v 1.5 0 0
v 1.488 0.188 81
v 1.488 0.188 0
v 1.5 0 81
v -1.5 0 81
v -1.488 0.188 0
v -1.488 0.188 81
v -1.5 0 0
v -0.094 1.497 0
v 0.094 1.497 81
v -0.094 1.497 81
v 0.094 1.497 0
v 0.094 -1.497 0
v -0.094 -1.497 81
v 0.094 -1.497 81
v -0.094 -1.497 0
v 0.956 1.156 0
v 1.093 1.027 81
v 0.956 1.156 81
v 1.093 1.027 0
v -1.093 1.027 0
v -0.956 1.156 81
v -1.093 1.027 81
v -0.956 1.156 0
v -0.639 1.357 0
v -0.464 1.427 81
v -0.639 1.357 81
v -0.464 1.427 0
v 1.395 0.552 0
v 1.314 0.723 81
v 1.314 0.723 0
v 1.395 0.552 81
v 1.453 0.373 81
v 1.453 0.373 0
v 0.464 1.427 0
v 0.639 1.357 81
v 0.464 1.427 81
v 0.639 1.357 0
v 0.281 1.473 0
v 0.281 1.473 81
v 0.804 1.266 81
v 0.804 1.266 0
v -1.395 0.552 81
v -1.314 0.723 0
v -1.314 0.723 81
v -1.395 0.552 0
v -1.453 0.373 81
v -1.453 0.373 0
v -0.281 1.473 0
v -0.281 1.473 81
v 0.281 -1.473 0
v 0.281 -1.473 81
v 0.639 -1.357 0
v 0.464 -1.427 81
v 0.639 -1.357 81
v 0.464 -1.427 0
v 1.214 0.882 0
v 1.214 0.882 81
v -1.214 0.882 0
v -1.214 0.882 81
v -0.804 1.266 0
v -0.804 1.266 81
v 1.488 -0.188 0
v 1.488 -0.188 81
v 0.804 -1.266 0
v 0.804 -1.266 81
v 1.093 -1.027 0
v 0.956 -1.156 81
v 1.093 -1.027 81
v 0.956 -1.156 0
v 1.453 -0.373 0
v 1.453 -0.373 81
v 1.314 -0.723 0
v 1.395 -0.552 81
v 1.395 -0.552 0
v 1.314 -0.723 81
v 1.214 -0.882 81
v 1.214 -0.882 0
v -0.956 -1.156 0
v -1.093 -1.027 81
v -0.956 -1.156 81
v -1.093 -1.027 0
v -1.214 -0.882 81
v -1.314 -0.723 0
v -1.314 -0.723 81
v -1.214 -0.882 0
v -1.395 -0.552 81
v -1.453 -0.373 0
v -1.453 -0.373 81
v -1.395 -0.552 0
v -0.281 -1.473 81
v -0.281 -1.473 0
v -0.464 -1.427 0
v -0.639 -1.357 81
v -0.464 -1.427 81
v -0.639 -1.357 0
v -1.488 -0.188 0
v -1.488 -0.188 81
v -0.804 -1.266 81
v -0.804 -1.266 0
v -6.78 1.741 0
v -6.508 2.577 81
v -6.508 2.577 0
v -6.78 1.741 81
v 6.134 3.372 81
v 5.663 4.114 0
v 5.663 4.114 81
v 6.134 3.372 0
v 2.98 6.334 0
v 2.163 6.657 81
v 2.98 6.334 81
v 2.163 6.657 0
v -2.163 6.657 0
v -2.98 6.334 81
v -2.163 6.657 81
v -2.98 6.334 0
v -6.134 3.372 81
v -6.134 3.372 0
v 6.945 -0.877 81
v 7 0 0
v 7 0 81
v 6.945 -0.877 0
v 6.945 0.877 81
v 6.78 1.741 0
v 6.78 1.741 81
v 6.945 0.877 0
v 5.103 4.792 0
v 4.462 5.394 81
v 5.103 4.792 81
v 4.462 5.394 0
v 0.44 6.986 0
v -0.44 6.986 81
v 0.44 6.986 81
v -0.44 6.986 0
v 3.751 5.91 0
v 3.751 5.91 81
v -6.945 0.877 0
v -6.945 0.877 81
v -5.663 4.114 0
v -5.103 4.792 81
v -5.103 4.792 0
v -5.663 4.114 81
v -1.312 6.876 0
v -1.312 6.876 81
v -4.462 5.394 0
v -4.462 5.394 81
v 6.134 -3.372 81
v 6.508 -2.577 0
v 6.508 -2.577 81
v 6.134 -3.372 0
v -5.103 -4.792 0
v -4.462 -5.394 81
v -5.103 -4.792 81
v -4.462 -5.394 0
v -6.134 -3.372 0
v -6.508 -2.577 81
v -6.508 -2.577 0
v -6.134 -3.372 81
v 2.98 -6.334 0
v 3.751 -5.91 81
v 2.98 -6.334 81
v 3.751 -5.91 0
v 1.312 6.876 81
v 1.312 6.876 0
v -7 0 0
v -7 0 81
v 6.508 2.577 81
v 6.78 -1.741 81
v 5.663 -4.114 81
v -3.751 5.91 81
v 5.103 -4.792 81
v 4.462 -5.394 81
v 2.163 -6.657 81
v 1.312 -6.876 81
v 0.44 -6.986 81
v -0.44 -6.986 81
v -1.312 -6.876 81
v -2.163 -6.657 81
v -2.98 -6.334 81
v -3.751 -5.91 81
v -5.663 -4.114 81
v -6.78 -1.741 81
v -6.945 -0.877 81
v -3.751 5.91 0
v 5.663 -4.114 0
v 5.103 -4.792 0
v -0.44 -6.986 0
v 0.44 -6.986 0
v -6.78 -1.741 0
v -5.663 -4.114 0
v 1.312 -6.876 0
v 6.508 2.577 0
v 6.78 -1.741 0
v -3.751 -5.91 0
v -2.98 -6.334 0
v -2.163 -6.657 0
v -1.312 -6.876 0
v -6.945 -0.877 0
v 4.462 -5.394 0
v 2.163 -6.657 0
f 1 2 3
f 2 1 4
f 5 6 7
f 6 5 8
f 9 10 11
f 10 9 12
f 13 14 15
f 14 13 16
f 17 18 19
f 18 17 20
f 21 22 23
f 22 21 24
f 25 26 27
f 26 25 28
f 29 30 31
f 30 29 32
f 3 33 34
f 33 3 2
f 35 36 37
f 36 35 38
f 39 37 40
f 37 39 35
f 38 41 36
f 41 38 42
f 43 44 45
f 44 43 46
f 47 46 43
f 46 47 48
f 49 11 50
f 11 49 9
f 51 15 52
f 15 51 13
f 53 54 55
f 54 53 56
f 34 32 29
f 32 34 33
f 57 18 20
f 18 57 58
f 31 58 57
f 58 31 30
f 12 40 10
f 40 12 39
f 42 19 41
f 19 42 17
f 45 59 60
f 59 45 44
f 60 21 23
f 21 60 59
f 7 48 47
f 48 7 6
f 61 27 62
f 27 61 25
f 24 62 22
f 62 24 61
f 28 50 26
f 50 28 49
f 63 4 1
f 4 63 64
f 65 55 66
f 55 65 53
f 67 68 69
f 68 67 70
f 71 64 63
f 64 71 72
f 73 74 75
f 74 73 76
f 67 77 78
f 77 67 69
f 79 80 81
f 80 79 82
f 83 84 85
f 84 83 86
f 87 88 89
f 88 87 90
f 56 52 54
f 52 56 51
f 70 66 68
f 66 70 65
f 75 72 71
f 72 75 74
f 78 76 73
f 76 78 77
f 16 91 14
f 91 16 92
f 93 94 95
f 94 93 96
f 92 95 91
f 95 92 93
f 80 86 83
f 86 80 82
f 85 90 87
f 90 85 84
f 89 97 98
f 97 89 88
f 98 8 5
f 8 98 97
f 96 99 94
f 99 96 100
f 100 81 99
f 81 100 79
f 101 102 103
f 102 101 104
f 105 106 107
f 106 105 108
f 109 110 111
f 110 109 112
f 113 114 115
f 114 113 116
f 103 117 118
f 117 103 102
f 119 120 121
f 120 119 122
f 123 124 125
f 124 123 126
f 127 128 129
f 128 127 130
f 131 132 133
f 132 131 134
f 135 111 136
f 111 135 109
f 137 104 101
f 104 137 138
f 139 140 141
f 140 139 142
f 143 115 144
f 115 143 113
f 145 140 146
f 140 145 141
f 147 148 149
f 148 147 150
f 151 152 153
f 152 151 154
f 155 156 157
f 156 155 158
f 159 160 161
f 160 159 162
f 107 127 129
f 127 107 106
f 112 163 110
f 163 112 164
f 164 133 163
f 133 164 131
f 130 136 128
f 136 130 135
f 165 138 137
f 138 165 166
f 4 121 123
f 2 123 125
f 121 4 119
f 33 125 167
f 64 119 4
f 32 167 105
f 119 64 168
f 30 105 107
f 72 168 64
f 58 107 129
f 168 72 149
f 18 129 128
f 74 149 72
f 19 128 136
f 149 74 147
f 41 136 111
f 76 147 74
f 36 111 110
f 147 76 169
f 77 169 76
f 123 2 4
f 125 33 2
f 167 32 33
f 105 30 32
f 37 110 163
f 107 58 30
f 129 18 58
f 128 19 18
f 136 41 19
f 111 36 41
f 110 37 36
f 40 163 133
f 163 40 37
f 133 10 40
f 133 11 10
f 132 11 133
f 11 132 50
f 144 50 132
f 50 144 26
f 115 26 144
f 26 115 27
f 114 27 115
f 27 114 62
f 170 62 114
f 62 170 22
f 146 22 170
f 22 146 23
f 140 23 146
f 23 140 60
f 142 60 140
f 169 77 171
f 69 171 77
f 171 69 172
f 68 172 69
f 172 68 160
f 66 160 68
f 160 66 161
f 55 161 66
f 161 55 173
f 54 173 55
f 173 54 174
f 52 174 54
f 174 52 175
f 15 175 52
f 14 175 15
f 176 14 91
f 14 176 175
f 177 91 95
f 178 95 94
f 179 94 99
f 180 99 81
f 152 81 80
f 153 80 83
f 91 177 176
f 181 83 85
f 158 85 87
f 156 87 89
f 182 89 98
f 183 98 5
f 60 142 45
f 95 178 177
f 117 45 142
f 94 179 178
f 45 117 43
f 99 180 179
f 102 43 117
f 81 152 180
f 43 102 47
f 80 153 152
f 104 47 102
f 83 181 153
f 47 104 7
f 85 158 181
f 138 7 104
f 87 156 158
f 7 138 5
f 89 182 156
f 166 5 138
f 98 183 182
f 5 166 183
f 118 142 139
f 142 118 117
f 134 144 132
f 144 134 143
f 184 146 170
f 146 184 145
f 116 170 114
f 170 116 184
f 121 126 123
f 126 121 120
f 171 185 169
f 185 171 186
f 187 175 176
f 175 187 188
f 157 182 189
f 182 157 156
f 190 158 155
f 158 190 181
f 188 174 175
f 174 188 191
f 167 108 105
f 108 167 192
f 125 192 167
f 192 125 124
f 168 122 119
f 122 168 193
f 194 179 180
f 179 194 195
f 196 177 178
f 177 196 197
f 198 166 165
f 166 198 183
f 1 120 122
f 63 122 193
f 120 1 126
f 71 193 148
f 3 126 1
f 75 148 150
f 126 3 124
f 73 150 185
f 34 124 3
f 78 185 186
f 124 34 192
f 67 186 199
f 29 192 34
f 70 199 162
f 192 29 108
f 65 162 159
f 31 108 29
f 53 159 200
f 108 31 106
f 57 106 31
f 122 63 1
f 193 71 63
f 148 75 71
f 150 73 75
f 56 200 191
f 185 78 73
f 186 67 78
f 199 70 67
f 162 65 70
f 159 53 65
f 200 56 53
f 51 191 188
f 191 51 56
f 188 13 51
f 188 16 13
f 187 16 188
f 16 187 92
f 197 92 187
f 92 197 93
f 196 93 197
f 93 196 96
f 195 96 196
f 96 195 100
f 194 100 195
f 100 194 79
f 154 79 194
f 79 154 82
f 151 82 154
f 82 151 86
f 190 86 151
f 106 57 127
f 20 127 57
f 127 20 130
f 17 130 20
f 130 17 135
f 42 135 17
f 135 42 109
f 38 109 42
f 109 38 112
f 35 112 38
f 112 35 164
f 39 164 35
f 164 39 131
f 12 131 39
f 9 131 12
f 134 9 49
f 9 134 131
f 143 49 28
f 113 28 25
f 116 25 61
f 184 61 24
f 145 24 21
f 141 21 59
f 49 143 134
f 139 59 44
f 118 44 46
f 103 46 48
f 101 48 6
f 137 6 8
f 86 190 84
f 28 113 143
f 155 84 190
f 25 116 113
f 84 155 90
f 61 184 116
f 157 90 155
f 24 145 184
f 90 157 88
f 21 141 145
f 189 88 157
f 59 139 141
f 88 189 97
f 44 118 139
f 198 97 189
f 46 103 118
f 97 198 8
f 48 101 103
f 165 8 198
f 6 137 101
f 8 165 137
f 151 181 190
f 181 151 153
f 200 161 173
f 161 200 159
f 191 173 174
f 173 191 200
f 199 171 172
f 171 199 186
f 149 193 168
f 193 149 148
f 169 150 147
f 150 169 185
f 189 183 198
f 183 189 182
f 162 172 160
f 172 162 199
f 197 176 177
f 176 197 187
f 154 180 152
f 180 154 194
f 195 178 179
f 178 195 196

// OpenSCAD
$fn = 50;


difference() {
	union() {
		cylinder(h = 81, r = 7.0000000000);
	}
	union() {
		translate(v = [0, 0, -100]) {
			cylinder(h = 200, r = 1.5000000000);
		}
		translate(v = [0, 0, -100]) {
			cylinder(h = 200, r = 1.5000000000);
		}
	}
}
